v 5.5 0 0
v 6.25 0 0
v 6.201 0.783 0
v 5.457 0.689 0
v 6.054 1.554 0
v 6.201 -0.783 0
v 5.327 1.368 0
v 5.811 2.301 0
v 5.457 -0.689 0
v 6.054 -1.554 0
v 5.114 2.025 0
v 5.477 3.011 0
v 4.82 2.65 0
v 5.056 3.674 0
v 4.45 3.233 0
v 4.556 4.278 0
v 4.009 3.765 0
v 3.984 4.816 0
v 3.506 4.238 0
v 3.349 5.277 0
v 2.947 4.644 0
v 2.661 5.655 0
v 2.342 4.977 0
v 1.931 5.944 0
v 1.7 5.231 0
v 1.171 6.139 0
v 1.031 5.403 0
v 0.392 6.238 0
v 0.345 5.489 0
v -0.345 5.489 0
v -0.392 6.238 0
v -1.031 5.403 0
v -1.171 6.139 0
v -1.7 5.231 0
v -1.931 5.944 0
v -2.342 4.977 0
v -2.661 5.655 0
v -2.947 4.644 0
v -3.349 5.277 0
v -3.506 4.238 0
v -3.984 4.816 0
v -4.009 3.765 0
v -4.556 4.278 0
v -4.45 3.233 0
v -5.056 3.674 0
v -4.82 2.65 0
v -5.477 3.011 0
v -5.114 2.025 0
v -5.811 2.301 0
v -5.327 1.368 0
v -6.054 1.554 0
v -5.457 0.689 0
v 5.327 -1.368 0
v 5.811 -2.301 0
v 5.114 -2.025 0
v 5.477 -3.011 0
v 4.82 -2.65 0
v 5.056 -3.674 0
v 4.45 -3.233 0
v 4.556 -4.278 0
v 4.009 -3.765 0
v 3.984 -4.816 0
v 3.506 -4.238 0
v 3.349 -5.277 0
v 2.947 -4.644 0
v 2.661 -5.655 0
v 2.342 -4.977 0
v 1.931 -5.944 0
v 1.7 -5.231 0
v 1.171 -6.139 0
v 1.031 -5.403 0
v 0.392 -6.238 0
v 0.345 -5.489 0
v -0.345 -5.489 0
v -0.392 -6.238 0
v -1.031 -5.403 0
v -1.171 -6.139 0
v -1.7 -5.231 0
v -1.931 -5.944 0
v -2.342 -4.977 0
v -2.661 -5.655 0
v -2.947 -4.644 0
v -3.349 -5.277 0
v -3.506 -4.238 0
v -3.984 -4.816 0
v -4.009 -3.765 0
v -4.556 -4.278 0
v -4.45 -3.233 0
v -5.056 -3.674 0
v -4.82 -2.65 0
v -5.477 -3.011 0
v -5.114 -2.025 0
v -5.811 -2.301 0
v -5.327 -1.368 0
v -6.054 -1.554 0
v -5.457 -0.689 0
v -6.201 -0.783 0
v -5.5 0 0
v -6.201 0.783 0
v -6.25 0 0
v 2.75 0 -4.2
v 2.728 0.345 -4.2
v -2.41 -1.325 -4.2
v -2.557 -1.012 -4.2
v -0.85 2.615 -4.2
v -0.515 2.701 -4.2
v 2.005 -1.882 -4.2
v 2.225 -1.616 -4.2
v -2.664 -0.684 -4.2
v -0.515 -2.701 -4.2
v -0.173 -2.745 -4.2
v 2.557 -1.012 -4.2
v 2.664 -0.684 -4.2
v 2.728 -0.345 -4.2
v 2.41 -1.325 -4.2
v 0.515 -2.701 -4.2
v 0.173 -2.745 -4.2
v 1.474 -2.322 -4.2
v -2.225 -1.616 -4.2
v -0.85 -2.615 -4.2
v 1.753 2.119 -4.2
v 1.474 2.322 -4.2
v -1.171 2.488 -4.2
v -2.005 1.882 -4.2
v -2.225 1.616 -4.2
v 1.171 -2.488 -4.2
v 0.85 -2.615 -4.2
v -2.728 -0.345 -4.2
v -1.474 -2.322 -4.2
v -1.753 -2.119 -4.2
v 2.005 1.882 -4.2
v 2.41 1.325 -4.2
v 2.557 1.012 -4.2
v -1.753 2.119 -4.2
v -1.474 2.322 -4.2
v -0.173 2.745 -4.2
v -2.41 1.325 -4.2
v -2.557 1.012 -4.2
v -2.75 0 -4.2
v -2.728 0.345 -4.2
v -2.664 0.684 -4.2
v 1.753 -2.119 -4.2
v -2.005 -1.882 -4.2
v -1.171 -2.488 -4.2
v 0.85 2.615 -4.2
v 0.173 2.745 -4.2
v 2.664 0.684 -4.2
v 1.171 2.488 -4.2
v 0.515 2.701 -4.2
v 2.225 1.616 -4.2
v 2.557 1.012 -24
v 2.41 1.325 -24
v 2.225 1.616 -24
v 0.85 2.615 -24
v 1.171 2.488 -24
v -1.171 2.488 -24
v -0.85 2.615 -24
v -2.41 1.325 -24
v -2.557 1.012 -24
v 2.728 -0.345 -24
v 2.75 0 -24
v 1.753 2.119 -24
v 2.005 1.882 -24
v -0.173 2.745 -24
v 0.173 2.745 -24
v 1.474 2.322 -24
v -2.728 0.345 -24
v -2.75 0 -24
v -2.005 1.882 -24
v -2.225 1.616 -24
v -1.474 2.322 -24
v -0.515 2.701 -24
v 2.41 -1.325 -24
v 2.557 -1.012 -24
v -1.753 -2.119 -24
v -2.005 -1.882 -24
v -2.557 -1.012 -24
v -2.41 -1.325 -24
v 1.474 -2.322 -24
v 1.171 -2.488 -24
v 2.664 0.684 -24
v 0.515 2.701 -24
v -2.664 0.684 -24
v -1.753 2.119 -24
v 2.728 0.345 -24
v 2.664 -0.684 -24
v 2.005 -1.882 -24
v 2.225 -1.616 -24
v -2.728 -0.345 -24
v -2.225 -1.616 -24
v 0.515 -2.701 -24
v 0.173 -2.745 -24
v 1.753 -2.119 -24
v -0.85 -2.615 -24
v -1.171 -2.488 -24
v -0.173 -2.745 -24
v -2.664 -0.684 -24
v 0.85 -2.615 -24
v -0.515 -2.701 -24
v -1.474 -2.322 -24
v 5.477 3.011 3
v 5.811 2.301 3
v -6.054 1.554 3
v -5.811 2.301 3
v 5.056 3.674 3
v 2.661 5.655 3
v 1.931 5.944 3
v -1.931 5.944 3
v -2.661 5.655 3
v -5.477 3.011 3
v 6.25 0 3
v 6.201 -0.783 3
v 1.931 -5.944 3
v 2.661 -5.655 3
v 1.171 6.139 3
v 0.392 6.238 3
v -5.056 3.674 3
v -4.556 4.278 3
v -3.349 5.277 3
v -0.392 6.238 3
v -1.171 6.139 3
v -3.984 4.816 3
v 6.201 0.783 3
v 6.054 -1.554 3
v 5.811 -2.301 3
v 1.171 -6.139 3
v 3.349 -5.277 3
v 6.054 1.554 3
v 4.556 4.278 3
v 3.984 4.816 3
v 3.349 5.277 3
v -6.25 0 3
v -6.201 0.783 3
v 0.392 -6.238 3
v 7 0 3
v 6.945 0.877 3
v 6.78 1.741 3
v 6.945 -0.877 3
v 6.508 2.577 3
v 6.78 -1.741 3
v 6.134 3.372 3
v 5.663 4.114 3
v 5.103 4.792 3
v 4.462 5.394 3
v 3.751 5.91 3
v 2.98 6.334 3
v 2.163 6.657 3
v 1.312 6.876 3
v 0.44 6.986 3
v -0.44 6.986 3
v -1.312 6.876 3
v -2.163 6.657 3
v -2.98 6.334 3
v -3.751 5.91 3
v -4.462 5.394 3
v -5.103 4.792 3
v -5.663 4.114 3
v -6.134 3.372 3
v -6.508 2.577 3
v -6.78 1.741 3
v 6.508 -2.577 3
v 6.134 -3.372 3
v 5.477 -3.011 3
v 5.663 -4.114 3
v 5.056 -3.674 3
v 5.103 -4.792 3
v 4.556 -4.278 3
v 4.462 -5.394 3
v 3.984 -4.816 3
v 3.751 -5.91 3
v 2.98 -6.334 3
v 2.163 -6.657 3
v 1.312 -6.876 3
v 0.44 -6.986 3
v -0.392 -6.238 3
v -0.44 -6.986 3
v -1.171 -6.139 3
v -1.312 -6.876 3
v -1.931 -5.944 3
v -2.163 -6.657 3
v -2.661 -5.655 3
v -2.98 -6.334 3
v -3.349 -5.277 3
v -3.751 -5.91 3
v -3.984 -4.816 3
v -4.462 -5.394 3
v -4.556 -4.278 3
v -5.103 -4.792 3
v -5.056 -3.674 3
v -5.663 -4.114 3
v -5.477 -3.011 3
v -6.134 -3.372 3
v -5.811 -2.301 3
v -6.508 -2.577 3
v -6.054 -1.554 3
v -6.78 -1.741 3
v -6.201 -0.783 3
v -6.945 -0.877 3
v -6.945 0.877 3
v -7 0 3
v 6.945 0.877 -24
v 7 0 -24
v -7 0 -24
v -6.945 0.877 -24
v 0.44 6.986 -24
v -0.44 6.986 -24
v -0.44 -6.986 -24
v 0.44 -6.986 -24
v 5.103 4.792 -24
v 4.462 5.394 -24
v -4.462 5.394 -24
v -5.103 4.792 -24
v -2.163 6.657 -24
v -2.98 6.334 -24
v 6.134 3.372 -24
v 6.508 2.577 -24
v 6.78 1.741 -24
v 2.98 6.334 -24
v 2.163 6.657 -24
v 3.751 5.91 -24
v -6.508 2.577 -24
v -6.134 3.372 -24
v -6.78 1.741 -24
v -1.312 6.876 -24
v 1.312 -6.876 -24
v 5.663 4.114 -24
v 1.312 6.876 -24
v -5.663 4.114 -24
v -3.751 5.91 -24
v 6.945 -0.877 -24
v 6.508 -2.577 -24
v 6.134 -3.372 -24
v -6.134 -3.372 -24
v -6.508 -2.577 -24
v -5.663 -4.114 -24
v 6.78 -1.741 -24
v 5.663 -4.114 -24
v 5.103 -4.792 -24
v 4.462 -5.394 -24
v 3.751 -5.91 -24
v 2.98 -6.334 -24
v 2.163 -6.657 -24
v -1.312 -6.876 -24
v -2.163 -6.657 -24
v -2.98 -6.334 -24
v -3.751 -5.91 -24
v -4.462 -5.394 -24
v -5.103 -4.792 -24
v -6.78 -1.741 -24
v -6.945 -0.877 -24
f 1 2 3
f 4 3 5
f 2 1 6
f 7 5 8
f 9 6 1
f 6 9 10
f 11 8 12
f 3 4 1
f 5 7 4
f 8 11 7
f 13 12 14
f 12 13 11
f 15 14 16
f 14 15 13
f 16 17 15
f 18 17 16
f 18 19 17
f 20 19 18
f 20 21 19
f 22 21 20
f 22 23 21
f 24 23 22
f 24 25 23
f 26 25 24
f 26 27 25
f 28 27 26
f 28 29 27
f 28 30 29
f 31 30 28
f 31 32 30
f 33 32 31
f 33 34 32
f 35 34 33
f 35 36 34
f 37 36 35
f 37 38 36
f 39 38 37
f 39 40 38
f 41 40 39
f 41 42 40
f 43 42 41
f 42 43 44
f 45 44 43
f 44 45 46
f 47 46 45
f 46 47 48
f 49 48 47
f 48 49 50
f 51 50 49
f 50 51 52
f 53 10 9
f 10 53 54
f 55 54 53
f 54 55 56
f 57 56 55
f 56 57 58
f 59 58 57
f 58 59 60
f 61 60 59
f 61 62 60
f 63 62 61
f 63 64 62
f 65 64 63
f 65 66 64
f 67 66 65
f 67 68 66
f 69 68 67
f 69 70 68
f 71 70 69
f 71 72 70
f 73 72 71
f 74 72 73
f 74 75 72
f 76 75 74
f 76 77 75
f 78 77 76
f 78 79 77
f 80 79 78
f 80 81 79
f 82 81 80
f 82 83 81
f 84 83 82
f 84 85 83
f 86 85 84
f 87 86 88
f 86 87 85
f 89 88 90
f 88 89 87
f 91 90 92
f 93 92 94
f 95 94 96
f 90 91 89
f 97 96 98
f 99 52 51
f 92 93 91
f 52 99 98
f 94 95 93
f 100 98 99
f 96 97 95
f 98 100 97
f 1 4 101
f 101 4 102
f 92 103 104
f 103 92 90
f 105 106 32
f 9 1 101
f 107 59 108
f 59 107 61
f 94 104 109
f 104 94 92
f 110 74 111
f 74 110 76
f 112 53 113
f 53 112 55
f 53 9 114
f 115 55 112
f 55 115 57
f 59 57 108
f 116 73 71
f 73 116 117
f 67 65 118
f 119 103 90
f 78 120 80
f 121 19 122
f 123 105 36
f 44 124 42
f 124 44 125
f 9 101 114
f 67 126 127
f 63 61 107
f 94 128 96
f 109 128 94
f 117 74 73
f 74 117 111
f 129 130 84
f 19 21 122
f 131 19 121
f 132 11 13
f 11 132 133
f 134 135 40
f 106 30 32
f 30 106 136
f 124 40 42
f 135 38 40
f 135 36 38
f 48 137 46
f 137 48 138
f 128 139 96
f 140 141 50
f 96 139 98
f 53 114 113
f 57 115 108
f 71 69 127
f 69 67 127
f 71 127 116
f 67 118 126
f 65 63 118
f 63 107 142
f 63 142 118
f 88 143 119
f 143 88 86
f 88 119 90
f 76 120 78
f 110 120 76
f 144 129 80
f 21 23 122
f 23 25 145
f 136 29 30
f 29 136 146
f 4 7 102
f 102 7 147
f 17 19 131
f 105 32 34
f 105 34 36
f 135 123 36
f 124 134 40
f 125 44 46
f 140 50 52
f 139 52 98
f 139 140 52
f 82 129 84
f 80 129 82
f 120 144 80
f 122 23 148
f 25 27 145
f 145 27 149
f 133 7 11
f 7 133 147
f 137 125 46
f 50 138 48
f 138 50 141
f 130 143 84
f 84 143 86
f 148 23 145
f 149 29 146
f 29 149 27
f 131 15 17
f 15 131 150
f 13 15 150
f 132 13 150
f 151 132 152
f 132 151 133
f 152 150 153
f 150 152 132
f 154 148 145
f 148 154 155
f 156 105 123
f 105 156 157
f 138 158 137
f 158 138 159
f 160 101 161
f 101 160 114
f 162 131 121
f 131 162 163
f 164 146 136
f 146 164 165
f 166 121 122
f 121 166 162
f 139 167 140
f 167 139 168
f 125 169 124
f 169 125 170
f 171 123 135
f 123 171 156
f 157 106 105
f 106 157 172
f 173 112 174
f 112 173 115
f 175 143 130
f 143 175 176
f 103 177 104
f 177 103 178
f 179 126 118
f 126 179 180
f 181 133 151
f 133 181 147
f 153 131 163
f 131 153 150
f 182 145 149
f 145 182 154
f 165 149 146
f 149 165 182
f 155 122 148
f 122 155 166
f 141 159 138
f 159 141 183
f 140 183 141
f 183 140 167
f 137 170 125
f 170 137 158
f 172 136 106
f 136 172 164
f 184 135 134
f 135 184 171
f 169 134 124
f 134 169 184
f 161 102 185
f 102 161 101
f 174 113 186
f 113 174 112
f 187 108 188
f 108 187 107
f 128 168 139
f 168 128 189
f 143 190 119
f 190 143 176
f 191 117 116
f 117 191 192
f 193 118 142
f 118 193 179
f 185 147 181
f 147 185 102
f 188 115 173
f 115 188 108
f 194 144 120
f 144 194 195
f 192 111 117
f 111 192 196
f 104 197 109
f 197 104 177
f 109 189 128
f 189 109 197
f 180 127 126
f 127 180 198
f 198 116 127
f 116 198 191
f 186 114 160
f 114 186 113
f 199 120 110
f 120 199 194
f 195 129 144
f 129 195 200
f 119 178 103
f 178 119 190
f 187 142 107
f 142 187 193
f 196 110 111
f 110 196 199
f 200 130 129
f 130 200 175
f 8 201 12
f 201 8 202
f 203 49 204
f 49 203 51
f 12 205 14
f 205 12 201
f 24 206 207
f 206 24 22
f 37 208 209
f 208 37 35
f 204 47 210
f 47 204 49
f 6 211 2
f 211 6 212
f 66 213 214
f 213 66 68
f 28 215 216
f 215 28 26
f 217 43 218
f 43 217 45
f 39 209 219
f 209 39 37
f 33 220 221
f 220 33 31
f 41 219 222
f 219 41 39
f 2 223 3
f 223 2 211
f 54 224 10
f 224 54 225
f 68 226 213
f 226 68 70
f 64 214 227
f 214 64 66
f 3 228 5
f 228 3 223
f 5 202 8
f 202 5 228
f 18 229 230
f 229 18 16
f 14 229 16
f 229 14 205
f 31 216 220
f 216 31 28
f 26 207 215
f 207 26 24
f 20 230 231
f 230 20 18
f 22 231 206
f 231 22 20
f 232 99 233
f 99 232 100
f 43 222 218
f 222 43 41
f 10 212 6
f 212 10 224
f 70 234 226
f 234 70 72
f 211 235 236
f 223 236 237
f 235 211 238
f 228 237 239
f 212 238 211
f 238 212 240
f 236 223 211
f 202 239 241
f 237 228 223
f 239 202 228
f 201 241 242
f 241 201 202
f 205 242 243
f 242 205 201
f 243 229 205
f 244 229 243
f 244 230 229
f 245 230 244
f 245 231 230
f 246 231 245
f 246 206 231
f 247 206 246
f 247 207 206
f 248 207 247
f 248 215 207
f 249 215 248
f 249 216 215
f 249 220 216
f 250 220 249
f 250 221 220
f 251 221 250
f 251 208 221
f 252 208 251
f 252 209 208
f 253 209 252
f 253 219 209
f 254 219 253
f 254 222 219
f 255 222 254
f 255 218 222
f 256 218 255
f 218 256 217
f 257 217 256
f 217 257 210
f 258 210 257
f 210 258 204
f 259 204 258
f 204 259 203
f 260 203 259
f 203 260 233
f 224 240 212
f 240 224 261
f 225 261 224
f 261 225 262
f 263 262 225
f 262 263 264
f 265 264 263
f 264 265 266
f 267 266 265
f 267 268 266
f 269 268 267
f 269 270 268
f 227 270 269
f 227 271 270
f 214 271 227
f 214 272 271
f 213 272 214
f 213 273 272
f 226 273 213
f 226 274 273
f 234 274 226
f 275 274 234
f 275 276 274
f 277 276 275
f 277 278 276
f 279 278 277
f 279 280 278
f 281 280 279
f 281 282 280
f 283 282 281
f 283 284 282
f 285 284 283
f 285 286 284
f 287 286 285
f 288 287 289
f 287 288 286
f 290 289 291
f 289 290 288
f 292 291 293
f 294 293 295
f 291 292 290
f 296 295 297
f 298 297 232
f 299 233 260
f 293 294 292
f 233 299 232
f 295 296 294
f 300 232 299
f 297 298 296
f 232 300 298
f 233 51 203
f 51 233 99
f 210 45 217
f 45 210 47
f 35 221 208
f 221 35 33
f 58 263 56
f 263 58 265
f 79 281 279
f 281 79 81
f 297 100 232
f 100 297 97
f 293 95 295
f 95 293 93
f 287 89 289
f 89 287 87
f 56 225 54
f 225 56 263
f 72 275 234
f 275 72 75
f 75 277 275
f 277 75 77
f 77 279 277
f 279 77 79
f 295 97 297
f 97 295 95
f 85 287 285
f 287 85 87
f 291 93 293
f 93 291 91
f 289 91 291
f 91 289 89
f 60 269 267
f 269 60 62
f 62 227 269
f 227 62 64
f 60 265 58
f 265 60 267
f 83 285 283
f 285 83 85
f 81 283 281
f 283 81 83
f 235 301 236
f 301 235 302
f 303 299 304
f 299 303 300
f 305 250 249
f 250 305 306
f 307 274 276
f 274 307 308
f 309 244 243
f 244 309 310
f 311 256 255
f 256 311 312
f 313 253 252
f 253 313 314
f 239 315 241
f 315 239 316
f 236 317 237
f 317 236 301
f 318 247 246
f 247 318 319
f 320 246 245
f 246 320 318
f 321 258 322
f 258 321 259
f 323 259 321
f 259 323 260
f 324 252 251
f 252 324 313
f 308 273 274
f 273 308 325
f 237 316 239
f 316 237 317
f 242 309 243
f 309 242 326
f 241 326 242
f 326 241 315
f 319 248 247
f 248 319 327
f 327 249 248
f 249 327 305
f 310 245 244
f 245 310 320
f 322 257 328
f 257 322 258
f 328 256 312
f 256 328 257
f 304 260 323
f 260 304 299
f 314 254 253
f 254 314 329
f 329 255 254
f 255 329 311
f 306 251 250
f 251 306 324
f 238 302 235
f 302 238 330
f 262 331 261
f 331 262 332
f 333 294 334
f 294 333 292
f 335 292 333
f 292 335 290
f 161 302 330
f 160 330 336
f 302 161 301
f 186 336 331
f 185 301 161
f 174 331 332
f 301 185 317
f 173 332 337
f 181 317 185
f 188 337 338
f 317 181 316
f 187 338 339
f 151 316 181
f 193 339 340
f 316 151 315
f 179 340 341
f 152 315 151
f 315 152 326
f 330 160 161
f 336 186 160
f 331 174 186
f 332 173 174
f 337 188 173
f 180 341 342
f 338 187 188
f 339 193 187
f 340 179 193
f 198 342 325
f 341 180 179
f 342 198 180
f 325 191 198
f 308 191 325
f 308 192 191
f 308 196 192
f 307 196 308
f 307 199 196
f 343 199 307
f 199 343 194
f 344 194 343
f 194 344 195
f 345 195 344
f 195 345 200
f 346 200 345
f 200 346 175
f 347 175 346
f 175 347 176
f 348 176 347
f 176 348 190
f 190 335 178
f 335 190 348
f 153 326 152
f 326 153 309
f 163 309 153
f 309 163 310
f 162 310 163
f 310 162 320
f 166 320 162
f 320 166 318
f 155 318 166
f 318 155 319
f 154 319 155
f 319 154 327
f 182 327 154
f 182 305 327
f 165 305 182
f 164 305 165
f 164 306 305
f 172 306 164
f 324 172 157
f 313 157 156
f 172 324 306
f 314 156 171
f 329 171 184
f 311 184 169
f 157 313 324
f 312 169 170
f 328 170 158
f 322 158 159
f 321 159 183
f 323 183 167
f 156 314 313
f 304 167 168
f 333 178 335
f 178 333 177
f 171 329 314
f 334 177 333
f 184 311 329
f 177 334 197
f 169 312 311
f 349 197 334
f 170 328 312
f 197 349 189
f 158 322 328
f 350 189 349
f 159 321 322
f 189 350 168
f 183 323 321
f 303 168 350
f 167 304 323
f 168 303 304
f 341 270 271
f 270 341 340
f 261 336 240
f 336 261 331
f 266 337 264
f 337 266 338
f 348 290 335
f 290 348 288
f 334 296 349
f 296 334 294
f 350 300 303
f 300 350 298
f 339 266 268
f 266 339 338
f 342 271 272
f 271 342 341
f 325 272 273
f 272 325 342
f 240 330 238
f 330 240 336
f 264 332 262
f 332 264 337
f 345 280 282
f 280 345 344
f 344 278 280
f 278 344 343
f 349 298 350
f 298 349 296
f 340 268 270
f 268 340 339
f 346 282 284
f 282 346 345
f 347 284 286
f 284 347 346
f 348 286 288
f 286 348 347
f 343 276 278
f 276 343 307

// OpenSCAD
$fn = 50;


difference() {
	union() {
		translate(v = [0, 0, -24.0000000000]) {
			cylinder(h = 27, r = 7.0000000000);
		}
	}
	union() {
		translate(v = [0, 0, 0]) {
			rotate(a = [0, 0, 0]) {
				difference() {
					union() {
						translate(v = [0, 0, -27.0000000000]) {
							cylinder(h = 27, r = 2.2500000000);
						}
						translate(v = [0, 0, -4.2000000000]) {
							cylinder(h = 4.2000000000, r1 = 2.7500000000, r2 = 5.5000000000);
						}
						translate(v = [0, 0, -27.0000000000]) {
							cylinder(h = 27, r = 2.7500000000);
						}
						translate(v = [0, 0, -27.0000000000]) {
							cylinder(h = 27, r = 2.2500000000);
						}
					}
					union();
				}
			}
		}
		#cylinder(h = 3, r = 6.2500000000);
	}
}
